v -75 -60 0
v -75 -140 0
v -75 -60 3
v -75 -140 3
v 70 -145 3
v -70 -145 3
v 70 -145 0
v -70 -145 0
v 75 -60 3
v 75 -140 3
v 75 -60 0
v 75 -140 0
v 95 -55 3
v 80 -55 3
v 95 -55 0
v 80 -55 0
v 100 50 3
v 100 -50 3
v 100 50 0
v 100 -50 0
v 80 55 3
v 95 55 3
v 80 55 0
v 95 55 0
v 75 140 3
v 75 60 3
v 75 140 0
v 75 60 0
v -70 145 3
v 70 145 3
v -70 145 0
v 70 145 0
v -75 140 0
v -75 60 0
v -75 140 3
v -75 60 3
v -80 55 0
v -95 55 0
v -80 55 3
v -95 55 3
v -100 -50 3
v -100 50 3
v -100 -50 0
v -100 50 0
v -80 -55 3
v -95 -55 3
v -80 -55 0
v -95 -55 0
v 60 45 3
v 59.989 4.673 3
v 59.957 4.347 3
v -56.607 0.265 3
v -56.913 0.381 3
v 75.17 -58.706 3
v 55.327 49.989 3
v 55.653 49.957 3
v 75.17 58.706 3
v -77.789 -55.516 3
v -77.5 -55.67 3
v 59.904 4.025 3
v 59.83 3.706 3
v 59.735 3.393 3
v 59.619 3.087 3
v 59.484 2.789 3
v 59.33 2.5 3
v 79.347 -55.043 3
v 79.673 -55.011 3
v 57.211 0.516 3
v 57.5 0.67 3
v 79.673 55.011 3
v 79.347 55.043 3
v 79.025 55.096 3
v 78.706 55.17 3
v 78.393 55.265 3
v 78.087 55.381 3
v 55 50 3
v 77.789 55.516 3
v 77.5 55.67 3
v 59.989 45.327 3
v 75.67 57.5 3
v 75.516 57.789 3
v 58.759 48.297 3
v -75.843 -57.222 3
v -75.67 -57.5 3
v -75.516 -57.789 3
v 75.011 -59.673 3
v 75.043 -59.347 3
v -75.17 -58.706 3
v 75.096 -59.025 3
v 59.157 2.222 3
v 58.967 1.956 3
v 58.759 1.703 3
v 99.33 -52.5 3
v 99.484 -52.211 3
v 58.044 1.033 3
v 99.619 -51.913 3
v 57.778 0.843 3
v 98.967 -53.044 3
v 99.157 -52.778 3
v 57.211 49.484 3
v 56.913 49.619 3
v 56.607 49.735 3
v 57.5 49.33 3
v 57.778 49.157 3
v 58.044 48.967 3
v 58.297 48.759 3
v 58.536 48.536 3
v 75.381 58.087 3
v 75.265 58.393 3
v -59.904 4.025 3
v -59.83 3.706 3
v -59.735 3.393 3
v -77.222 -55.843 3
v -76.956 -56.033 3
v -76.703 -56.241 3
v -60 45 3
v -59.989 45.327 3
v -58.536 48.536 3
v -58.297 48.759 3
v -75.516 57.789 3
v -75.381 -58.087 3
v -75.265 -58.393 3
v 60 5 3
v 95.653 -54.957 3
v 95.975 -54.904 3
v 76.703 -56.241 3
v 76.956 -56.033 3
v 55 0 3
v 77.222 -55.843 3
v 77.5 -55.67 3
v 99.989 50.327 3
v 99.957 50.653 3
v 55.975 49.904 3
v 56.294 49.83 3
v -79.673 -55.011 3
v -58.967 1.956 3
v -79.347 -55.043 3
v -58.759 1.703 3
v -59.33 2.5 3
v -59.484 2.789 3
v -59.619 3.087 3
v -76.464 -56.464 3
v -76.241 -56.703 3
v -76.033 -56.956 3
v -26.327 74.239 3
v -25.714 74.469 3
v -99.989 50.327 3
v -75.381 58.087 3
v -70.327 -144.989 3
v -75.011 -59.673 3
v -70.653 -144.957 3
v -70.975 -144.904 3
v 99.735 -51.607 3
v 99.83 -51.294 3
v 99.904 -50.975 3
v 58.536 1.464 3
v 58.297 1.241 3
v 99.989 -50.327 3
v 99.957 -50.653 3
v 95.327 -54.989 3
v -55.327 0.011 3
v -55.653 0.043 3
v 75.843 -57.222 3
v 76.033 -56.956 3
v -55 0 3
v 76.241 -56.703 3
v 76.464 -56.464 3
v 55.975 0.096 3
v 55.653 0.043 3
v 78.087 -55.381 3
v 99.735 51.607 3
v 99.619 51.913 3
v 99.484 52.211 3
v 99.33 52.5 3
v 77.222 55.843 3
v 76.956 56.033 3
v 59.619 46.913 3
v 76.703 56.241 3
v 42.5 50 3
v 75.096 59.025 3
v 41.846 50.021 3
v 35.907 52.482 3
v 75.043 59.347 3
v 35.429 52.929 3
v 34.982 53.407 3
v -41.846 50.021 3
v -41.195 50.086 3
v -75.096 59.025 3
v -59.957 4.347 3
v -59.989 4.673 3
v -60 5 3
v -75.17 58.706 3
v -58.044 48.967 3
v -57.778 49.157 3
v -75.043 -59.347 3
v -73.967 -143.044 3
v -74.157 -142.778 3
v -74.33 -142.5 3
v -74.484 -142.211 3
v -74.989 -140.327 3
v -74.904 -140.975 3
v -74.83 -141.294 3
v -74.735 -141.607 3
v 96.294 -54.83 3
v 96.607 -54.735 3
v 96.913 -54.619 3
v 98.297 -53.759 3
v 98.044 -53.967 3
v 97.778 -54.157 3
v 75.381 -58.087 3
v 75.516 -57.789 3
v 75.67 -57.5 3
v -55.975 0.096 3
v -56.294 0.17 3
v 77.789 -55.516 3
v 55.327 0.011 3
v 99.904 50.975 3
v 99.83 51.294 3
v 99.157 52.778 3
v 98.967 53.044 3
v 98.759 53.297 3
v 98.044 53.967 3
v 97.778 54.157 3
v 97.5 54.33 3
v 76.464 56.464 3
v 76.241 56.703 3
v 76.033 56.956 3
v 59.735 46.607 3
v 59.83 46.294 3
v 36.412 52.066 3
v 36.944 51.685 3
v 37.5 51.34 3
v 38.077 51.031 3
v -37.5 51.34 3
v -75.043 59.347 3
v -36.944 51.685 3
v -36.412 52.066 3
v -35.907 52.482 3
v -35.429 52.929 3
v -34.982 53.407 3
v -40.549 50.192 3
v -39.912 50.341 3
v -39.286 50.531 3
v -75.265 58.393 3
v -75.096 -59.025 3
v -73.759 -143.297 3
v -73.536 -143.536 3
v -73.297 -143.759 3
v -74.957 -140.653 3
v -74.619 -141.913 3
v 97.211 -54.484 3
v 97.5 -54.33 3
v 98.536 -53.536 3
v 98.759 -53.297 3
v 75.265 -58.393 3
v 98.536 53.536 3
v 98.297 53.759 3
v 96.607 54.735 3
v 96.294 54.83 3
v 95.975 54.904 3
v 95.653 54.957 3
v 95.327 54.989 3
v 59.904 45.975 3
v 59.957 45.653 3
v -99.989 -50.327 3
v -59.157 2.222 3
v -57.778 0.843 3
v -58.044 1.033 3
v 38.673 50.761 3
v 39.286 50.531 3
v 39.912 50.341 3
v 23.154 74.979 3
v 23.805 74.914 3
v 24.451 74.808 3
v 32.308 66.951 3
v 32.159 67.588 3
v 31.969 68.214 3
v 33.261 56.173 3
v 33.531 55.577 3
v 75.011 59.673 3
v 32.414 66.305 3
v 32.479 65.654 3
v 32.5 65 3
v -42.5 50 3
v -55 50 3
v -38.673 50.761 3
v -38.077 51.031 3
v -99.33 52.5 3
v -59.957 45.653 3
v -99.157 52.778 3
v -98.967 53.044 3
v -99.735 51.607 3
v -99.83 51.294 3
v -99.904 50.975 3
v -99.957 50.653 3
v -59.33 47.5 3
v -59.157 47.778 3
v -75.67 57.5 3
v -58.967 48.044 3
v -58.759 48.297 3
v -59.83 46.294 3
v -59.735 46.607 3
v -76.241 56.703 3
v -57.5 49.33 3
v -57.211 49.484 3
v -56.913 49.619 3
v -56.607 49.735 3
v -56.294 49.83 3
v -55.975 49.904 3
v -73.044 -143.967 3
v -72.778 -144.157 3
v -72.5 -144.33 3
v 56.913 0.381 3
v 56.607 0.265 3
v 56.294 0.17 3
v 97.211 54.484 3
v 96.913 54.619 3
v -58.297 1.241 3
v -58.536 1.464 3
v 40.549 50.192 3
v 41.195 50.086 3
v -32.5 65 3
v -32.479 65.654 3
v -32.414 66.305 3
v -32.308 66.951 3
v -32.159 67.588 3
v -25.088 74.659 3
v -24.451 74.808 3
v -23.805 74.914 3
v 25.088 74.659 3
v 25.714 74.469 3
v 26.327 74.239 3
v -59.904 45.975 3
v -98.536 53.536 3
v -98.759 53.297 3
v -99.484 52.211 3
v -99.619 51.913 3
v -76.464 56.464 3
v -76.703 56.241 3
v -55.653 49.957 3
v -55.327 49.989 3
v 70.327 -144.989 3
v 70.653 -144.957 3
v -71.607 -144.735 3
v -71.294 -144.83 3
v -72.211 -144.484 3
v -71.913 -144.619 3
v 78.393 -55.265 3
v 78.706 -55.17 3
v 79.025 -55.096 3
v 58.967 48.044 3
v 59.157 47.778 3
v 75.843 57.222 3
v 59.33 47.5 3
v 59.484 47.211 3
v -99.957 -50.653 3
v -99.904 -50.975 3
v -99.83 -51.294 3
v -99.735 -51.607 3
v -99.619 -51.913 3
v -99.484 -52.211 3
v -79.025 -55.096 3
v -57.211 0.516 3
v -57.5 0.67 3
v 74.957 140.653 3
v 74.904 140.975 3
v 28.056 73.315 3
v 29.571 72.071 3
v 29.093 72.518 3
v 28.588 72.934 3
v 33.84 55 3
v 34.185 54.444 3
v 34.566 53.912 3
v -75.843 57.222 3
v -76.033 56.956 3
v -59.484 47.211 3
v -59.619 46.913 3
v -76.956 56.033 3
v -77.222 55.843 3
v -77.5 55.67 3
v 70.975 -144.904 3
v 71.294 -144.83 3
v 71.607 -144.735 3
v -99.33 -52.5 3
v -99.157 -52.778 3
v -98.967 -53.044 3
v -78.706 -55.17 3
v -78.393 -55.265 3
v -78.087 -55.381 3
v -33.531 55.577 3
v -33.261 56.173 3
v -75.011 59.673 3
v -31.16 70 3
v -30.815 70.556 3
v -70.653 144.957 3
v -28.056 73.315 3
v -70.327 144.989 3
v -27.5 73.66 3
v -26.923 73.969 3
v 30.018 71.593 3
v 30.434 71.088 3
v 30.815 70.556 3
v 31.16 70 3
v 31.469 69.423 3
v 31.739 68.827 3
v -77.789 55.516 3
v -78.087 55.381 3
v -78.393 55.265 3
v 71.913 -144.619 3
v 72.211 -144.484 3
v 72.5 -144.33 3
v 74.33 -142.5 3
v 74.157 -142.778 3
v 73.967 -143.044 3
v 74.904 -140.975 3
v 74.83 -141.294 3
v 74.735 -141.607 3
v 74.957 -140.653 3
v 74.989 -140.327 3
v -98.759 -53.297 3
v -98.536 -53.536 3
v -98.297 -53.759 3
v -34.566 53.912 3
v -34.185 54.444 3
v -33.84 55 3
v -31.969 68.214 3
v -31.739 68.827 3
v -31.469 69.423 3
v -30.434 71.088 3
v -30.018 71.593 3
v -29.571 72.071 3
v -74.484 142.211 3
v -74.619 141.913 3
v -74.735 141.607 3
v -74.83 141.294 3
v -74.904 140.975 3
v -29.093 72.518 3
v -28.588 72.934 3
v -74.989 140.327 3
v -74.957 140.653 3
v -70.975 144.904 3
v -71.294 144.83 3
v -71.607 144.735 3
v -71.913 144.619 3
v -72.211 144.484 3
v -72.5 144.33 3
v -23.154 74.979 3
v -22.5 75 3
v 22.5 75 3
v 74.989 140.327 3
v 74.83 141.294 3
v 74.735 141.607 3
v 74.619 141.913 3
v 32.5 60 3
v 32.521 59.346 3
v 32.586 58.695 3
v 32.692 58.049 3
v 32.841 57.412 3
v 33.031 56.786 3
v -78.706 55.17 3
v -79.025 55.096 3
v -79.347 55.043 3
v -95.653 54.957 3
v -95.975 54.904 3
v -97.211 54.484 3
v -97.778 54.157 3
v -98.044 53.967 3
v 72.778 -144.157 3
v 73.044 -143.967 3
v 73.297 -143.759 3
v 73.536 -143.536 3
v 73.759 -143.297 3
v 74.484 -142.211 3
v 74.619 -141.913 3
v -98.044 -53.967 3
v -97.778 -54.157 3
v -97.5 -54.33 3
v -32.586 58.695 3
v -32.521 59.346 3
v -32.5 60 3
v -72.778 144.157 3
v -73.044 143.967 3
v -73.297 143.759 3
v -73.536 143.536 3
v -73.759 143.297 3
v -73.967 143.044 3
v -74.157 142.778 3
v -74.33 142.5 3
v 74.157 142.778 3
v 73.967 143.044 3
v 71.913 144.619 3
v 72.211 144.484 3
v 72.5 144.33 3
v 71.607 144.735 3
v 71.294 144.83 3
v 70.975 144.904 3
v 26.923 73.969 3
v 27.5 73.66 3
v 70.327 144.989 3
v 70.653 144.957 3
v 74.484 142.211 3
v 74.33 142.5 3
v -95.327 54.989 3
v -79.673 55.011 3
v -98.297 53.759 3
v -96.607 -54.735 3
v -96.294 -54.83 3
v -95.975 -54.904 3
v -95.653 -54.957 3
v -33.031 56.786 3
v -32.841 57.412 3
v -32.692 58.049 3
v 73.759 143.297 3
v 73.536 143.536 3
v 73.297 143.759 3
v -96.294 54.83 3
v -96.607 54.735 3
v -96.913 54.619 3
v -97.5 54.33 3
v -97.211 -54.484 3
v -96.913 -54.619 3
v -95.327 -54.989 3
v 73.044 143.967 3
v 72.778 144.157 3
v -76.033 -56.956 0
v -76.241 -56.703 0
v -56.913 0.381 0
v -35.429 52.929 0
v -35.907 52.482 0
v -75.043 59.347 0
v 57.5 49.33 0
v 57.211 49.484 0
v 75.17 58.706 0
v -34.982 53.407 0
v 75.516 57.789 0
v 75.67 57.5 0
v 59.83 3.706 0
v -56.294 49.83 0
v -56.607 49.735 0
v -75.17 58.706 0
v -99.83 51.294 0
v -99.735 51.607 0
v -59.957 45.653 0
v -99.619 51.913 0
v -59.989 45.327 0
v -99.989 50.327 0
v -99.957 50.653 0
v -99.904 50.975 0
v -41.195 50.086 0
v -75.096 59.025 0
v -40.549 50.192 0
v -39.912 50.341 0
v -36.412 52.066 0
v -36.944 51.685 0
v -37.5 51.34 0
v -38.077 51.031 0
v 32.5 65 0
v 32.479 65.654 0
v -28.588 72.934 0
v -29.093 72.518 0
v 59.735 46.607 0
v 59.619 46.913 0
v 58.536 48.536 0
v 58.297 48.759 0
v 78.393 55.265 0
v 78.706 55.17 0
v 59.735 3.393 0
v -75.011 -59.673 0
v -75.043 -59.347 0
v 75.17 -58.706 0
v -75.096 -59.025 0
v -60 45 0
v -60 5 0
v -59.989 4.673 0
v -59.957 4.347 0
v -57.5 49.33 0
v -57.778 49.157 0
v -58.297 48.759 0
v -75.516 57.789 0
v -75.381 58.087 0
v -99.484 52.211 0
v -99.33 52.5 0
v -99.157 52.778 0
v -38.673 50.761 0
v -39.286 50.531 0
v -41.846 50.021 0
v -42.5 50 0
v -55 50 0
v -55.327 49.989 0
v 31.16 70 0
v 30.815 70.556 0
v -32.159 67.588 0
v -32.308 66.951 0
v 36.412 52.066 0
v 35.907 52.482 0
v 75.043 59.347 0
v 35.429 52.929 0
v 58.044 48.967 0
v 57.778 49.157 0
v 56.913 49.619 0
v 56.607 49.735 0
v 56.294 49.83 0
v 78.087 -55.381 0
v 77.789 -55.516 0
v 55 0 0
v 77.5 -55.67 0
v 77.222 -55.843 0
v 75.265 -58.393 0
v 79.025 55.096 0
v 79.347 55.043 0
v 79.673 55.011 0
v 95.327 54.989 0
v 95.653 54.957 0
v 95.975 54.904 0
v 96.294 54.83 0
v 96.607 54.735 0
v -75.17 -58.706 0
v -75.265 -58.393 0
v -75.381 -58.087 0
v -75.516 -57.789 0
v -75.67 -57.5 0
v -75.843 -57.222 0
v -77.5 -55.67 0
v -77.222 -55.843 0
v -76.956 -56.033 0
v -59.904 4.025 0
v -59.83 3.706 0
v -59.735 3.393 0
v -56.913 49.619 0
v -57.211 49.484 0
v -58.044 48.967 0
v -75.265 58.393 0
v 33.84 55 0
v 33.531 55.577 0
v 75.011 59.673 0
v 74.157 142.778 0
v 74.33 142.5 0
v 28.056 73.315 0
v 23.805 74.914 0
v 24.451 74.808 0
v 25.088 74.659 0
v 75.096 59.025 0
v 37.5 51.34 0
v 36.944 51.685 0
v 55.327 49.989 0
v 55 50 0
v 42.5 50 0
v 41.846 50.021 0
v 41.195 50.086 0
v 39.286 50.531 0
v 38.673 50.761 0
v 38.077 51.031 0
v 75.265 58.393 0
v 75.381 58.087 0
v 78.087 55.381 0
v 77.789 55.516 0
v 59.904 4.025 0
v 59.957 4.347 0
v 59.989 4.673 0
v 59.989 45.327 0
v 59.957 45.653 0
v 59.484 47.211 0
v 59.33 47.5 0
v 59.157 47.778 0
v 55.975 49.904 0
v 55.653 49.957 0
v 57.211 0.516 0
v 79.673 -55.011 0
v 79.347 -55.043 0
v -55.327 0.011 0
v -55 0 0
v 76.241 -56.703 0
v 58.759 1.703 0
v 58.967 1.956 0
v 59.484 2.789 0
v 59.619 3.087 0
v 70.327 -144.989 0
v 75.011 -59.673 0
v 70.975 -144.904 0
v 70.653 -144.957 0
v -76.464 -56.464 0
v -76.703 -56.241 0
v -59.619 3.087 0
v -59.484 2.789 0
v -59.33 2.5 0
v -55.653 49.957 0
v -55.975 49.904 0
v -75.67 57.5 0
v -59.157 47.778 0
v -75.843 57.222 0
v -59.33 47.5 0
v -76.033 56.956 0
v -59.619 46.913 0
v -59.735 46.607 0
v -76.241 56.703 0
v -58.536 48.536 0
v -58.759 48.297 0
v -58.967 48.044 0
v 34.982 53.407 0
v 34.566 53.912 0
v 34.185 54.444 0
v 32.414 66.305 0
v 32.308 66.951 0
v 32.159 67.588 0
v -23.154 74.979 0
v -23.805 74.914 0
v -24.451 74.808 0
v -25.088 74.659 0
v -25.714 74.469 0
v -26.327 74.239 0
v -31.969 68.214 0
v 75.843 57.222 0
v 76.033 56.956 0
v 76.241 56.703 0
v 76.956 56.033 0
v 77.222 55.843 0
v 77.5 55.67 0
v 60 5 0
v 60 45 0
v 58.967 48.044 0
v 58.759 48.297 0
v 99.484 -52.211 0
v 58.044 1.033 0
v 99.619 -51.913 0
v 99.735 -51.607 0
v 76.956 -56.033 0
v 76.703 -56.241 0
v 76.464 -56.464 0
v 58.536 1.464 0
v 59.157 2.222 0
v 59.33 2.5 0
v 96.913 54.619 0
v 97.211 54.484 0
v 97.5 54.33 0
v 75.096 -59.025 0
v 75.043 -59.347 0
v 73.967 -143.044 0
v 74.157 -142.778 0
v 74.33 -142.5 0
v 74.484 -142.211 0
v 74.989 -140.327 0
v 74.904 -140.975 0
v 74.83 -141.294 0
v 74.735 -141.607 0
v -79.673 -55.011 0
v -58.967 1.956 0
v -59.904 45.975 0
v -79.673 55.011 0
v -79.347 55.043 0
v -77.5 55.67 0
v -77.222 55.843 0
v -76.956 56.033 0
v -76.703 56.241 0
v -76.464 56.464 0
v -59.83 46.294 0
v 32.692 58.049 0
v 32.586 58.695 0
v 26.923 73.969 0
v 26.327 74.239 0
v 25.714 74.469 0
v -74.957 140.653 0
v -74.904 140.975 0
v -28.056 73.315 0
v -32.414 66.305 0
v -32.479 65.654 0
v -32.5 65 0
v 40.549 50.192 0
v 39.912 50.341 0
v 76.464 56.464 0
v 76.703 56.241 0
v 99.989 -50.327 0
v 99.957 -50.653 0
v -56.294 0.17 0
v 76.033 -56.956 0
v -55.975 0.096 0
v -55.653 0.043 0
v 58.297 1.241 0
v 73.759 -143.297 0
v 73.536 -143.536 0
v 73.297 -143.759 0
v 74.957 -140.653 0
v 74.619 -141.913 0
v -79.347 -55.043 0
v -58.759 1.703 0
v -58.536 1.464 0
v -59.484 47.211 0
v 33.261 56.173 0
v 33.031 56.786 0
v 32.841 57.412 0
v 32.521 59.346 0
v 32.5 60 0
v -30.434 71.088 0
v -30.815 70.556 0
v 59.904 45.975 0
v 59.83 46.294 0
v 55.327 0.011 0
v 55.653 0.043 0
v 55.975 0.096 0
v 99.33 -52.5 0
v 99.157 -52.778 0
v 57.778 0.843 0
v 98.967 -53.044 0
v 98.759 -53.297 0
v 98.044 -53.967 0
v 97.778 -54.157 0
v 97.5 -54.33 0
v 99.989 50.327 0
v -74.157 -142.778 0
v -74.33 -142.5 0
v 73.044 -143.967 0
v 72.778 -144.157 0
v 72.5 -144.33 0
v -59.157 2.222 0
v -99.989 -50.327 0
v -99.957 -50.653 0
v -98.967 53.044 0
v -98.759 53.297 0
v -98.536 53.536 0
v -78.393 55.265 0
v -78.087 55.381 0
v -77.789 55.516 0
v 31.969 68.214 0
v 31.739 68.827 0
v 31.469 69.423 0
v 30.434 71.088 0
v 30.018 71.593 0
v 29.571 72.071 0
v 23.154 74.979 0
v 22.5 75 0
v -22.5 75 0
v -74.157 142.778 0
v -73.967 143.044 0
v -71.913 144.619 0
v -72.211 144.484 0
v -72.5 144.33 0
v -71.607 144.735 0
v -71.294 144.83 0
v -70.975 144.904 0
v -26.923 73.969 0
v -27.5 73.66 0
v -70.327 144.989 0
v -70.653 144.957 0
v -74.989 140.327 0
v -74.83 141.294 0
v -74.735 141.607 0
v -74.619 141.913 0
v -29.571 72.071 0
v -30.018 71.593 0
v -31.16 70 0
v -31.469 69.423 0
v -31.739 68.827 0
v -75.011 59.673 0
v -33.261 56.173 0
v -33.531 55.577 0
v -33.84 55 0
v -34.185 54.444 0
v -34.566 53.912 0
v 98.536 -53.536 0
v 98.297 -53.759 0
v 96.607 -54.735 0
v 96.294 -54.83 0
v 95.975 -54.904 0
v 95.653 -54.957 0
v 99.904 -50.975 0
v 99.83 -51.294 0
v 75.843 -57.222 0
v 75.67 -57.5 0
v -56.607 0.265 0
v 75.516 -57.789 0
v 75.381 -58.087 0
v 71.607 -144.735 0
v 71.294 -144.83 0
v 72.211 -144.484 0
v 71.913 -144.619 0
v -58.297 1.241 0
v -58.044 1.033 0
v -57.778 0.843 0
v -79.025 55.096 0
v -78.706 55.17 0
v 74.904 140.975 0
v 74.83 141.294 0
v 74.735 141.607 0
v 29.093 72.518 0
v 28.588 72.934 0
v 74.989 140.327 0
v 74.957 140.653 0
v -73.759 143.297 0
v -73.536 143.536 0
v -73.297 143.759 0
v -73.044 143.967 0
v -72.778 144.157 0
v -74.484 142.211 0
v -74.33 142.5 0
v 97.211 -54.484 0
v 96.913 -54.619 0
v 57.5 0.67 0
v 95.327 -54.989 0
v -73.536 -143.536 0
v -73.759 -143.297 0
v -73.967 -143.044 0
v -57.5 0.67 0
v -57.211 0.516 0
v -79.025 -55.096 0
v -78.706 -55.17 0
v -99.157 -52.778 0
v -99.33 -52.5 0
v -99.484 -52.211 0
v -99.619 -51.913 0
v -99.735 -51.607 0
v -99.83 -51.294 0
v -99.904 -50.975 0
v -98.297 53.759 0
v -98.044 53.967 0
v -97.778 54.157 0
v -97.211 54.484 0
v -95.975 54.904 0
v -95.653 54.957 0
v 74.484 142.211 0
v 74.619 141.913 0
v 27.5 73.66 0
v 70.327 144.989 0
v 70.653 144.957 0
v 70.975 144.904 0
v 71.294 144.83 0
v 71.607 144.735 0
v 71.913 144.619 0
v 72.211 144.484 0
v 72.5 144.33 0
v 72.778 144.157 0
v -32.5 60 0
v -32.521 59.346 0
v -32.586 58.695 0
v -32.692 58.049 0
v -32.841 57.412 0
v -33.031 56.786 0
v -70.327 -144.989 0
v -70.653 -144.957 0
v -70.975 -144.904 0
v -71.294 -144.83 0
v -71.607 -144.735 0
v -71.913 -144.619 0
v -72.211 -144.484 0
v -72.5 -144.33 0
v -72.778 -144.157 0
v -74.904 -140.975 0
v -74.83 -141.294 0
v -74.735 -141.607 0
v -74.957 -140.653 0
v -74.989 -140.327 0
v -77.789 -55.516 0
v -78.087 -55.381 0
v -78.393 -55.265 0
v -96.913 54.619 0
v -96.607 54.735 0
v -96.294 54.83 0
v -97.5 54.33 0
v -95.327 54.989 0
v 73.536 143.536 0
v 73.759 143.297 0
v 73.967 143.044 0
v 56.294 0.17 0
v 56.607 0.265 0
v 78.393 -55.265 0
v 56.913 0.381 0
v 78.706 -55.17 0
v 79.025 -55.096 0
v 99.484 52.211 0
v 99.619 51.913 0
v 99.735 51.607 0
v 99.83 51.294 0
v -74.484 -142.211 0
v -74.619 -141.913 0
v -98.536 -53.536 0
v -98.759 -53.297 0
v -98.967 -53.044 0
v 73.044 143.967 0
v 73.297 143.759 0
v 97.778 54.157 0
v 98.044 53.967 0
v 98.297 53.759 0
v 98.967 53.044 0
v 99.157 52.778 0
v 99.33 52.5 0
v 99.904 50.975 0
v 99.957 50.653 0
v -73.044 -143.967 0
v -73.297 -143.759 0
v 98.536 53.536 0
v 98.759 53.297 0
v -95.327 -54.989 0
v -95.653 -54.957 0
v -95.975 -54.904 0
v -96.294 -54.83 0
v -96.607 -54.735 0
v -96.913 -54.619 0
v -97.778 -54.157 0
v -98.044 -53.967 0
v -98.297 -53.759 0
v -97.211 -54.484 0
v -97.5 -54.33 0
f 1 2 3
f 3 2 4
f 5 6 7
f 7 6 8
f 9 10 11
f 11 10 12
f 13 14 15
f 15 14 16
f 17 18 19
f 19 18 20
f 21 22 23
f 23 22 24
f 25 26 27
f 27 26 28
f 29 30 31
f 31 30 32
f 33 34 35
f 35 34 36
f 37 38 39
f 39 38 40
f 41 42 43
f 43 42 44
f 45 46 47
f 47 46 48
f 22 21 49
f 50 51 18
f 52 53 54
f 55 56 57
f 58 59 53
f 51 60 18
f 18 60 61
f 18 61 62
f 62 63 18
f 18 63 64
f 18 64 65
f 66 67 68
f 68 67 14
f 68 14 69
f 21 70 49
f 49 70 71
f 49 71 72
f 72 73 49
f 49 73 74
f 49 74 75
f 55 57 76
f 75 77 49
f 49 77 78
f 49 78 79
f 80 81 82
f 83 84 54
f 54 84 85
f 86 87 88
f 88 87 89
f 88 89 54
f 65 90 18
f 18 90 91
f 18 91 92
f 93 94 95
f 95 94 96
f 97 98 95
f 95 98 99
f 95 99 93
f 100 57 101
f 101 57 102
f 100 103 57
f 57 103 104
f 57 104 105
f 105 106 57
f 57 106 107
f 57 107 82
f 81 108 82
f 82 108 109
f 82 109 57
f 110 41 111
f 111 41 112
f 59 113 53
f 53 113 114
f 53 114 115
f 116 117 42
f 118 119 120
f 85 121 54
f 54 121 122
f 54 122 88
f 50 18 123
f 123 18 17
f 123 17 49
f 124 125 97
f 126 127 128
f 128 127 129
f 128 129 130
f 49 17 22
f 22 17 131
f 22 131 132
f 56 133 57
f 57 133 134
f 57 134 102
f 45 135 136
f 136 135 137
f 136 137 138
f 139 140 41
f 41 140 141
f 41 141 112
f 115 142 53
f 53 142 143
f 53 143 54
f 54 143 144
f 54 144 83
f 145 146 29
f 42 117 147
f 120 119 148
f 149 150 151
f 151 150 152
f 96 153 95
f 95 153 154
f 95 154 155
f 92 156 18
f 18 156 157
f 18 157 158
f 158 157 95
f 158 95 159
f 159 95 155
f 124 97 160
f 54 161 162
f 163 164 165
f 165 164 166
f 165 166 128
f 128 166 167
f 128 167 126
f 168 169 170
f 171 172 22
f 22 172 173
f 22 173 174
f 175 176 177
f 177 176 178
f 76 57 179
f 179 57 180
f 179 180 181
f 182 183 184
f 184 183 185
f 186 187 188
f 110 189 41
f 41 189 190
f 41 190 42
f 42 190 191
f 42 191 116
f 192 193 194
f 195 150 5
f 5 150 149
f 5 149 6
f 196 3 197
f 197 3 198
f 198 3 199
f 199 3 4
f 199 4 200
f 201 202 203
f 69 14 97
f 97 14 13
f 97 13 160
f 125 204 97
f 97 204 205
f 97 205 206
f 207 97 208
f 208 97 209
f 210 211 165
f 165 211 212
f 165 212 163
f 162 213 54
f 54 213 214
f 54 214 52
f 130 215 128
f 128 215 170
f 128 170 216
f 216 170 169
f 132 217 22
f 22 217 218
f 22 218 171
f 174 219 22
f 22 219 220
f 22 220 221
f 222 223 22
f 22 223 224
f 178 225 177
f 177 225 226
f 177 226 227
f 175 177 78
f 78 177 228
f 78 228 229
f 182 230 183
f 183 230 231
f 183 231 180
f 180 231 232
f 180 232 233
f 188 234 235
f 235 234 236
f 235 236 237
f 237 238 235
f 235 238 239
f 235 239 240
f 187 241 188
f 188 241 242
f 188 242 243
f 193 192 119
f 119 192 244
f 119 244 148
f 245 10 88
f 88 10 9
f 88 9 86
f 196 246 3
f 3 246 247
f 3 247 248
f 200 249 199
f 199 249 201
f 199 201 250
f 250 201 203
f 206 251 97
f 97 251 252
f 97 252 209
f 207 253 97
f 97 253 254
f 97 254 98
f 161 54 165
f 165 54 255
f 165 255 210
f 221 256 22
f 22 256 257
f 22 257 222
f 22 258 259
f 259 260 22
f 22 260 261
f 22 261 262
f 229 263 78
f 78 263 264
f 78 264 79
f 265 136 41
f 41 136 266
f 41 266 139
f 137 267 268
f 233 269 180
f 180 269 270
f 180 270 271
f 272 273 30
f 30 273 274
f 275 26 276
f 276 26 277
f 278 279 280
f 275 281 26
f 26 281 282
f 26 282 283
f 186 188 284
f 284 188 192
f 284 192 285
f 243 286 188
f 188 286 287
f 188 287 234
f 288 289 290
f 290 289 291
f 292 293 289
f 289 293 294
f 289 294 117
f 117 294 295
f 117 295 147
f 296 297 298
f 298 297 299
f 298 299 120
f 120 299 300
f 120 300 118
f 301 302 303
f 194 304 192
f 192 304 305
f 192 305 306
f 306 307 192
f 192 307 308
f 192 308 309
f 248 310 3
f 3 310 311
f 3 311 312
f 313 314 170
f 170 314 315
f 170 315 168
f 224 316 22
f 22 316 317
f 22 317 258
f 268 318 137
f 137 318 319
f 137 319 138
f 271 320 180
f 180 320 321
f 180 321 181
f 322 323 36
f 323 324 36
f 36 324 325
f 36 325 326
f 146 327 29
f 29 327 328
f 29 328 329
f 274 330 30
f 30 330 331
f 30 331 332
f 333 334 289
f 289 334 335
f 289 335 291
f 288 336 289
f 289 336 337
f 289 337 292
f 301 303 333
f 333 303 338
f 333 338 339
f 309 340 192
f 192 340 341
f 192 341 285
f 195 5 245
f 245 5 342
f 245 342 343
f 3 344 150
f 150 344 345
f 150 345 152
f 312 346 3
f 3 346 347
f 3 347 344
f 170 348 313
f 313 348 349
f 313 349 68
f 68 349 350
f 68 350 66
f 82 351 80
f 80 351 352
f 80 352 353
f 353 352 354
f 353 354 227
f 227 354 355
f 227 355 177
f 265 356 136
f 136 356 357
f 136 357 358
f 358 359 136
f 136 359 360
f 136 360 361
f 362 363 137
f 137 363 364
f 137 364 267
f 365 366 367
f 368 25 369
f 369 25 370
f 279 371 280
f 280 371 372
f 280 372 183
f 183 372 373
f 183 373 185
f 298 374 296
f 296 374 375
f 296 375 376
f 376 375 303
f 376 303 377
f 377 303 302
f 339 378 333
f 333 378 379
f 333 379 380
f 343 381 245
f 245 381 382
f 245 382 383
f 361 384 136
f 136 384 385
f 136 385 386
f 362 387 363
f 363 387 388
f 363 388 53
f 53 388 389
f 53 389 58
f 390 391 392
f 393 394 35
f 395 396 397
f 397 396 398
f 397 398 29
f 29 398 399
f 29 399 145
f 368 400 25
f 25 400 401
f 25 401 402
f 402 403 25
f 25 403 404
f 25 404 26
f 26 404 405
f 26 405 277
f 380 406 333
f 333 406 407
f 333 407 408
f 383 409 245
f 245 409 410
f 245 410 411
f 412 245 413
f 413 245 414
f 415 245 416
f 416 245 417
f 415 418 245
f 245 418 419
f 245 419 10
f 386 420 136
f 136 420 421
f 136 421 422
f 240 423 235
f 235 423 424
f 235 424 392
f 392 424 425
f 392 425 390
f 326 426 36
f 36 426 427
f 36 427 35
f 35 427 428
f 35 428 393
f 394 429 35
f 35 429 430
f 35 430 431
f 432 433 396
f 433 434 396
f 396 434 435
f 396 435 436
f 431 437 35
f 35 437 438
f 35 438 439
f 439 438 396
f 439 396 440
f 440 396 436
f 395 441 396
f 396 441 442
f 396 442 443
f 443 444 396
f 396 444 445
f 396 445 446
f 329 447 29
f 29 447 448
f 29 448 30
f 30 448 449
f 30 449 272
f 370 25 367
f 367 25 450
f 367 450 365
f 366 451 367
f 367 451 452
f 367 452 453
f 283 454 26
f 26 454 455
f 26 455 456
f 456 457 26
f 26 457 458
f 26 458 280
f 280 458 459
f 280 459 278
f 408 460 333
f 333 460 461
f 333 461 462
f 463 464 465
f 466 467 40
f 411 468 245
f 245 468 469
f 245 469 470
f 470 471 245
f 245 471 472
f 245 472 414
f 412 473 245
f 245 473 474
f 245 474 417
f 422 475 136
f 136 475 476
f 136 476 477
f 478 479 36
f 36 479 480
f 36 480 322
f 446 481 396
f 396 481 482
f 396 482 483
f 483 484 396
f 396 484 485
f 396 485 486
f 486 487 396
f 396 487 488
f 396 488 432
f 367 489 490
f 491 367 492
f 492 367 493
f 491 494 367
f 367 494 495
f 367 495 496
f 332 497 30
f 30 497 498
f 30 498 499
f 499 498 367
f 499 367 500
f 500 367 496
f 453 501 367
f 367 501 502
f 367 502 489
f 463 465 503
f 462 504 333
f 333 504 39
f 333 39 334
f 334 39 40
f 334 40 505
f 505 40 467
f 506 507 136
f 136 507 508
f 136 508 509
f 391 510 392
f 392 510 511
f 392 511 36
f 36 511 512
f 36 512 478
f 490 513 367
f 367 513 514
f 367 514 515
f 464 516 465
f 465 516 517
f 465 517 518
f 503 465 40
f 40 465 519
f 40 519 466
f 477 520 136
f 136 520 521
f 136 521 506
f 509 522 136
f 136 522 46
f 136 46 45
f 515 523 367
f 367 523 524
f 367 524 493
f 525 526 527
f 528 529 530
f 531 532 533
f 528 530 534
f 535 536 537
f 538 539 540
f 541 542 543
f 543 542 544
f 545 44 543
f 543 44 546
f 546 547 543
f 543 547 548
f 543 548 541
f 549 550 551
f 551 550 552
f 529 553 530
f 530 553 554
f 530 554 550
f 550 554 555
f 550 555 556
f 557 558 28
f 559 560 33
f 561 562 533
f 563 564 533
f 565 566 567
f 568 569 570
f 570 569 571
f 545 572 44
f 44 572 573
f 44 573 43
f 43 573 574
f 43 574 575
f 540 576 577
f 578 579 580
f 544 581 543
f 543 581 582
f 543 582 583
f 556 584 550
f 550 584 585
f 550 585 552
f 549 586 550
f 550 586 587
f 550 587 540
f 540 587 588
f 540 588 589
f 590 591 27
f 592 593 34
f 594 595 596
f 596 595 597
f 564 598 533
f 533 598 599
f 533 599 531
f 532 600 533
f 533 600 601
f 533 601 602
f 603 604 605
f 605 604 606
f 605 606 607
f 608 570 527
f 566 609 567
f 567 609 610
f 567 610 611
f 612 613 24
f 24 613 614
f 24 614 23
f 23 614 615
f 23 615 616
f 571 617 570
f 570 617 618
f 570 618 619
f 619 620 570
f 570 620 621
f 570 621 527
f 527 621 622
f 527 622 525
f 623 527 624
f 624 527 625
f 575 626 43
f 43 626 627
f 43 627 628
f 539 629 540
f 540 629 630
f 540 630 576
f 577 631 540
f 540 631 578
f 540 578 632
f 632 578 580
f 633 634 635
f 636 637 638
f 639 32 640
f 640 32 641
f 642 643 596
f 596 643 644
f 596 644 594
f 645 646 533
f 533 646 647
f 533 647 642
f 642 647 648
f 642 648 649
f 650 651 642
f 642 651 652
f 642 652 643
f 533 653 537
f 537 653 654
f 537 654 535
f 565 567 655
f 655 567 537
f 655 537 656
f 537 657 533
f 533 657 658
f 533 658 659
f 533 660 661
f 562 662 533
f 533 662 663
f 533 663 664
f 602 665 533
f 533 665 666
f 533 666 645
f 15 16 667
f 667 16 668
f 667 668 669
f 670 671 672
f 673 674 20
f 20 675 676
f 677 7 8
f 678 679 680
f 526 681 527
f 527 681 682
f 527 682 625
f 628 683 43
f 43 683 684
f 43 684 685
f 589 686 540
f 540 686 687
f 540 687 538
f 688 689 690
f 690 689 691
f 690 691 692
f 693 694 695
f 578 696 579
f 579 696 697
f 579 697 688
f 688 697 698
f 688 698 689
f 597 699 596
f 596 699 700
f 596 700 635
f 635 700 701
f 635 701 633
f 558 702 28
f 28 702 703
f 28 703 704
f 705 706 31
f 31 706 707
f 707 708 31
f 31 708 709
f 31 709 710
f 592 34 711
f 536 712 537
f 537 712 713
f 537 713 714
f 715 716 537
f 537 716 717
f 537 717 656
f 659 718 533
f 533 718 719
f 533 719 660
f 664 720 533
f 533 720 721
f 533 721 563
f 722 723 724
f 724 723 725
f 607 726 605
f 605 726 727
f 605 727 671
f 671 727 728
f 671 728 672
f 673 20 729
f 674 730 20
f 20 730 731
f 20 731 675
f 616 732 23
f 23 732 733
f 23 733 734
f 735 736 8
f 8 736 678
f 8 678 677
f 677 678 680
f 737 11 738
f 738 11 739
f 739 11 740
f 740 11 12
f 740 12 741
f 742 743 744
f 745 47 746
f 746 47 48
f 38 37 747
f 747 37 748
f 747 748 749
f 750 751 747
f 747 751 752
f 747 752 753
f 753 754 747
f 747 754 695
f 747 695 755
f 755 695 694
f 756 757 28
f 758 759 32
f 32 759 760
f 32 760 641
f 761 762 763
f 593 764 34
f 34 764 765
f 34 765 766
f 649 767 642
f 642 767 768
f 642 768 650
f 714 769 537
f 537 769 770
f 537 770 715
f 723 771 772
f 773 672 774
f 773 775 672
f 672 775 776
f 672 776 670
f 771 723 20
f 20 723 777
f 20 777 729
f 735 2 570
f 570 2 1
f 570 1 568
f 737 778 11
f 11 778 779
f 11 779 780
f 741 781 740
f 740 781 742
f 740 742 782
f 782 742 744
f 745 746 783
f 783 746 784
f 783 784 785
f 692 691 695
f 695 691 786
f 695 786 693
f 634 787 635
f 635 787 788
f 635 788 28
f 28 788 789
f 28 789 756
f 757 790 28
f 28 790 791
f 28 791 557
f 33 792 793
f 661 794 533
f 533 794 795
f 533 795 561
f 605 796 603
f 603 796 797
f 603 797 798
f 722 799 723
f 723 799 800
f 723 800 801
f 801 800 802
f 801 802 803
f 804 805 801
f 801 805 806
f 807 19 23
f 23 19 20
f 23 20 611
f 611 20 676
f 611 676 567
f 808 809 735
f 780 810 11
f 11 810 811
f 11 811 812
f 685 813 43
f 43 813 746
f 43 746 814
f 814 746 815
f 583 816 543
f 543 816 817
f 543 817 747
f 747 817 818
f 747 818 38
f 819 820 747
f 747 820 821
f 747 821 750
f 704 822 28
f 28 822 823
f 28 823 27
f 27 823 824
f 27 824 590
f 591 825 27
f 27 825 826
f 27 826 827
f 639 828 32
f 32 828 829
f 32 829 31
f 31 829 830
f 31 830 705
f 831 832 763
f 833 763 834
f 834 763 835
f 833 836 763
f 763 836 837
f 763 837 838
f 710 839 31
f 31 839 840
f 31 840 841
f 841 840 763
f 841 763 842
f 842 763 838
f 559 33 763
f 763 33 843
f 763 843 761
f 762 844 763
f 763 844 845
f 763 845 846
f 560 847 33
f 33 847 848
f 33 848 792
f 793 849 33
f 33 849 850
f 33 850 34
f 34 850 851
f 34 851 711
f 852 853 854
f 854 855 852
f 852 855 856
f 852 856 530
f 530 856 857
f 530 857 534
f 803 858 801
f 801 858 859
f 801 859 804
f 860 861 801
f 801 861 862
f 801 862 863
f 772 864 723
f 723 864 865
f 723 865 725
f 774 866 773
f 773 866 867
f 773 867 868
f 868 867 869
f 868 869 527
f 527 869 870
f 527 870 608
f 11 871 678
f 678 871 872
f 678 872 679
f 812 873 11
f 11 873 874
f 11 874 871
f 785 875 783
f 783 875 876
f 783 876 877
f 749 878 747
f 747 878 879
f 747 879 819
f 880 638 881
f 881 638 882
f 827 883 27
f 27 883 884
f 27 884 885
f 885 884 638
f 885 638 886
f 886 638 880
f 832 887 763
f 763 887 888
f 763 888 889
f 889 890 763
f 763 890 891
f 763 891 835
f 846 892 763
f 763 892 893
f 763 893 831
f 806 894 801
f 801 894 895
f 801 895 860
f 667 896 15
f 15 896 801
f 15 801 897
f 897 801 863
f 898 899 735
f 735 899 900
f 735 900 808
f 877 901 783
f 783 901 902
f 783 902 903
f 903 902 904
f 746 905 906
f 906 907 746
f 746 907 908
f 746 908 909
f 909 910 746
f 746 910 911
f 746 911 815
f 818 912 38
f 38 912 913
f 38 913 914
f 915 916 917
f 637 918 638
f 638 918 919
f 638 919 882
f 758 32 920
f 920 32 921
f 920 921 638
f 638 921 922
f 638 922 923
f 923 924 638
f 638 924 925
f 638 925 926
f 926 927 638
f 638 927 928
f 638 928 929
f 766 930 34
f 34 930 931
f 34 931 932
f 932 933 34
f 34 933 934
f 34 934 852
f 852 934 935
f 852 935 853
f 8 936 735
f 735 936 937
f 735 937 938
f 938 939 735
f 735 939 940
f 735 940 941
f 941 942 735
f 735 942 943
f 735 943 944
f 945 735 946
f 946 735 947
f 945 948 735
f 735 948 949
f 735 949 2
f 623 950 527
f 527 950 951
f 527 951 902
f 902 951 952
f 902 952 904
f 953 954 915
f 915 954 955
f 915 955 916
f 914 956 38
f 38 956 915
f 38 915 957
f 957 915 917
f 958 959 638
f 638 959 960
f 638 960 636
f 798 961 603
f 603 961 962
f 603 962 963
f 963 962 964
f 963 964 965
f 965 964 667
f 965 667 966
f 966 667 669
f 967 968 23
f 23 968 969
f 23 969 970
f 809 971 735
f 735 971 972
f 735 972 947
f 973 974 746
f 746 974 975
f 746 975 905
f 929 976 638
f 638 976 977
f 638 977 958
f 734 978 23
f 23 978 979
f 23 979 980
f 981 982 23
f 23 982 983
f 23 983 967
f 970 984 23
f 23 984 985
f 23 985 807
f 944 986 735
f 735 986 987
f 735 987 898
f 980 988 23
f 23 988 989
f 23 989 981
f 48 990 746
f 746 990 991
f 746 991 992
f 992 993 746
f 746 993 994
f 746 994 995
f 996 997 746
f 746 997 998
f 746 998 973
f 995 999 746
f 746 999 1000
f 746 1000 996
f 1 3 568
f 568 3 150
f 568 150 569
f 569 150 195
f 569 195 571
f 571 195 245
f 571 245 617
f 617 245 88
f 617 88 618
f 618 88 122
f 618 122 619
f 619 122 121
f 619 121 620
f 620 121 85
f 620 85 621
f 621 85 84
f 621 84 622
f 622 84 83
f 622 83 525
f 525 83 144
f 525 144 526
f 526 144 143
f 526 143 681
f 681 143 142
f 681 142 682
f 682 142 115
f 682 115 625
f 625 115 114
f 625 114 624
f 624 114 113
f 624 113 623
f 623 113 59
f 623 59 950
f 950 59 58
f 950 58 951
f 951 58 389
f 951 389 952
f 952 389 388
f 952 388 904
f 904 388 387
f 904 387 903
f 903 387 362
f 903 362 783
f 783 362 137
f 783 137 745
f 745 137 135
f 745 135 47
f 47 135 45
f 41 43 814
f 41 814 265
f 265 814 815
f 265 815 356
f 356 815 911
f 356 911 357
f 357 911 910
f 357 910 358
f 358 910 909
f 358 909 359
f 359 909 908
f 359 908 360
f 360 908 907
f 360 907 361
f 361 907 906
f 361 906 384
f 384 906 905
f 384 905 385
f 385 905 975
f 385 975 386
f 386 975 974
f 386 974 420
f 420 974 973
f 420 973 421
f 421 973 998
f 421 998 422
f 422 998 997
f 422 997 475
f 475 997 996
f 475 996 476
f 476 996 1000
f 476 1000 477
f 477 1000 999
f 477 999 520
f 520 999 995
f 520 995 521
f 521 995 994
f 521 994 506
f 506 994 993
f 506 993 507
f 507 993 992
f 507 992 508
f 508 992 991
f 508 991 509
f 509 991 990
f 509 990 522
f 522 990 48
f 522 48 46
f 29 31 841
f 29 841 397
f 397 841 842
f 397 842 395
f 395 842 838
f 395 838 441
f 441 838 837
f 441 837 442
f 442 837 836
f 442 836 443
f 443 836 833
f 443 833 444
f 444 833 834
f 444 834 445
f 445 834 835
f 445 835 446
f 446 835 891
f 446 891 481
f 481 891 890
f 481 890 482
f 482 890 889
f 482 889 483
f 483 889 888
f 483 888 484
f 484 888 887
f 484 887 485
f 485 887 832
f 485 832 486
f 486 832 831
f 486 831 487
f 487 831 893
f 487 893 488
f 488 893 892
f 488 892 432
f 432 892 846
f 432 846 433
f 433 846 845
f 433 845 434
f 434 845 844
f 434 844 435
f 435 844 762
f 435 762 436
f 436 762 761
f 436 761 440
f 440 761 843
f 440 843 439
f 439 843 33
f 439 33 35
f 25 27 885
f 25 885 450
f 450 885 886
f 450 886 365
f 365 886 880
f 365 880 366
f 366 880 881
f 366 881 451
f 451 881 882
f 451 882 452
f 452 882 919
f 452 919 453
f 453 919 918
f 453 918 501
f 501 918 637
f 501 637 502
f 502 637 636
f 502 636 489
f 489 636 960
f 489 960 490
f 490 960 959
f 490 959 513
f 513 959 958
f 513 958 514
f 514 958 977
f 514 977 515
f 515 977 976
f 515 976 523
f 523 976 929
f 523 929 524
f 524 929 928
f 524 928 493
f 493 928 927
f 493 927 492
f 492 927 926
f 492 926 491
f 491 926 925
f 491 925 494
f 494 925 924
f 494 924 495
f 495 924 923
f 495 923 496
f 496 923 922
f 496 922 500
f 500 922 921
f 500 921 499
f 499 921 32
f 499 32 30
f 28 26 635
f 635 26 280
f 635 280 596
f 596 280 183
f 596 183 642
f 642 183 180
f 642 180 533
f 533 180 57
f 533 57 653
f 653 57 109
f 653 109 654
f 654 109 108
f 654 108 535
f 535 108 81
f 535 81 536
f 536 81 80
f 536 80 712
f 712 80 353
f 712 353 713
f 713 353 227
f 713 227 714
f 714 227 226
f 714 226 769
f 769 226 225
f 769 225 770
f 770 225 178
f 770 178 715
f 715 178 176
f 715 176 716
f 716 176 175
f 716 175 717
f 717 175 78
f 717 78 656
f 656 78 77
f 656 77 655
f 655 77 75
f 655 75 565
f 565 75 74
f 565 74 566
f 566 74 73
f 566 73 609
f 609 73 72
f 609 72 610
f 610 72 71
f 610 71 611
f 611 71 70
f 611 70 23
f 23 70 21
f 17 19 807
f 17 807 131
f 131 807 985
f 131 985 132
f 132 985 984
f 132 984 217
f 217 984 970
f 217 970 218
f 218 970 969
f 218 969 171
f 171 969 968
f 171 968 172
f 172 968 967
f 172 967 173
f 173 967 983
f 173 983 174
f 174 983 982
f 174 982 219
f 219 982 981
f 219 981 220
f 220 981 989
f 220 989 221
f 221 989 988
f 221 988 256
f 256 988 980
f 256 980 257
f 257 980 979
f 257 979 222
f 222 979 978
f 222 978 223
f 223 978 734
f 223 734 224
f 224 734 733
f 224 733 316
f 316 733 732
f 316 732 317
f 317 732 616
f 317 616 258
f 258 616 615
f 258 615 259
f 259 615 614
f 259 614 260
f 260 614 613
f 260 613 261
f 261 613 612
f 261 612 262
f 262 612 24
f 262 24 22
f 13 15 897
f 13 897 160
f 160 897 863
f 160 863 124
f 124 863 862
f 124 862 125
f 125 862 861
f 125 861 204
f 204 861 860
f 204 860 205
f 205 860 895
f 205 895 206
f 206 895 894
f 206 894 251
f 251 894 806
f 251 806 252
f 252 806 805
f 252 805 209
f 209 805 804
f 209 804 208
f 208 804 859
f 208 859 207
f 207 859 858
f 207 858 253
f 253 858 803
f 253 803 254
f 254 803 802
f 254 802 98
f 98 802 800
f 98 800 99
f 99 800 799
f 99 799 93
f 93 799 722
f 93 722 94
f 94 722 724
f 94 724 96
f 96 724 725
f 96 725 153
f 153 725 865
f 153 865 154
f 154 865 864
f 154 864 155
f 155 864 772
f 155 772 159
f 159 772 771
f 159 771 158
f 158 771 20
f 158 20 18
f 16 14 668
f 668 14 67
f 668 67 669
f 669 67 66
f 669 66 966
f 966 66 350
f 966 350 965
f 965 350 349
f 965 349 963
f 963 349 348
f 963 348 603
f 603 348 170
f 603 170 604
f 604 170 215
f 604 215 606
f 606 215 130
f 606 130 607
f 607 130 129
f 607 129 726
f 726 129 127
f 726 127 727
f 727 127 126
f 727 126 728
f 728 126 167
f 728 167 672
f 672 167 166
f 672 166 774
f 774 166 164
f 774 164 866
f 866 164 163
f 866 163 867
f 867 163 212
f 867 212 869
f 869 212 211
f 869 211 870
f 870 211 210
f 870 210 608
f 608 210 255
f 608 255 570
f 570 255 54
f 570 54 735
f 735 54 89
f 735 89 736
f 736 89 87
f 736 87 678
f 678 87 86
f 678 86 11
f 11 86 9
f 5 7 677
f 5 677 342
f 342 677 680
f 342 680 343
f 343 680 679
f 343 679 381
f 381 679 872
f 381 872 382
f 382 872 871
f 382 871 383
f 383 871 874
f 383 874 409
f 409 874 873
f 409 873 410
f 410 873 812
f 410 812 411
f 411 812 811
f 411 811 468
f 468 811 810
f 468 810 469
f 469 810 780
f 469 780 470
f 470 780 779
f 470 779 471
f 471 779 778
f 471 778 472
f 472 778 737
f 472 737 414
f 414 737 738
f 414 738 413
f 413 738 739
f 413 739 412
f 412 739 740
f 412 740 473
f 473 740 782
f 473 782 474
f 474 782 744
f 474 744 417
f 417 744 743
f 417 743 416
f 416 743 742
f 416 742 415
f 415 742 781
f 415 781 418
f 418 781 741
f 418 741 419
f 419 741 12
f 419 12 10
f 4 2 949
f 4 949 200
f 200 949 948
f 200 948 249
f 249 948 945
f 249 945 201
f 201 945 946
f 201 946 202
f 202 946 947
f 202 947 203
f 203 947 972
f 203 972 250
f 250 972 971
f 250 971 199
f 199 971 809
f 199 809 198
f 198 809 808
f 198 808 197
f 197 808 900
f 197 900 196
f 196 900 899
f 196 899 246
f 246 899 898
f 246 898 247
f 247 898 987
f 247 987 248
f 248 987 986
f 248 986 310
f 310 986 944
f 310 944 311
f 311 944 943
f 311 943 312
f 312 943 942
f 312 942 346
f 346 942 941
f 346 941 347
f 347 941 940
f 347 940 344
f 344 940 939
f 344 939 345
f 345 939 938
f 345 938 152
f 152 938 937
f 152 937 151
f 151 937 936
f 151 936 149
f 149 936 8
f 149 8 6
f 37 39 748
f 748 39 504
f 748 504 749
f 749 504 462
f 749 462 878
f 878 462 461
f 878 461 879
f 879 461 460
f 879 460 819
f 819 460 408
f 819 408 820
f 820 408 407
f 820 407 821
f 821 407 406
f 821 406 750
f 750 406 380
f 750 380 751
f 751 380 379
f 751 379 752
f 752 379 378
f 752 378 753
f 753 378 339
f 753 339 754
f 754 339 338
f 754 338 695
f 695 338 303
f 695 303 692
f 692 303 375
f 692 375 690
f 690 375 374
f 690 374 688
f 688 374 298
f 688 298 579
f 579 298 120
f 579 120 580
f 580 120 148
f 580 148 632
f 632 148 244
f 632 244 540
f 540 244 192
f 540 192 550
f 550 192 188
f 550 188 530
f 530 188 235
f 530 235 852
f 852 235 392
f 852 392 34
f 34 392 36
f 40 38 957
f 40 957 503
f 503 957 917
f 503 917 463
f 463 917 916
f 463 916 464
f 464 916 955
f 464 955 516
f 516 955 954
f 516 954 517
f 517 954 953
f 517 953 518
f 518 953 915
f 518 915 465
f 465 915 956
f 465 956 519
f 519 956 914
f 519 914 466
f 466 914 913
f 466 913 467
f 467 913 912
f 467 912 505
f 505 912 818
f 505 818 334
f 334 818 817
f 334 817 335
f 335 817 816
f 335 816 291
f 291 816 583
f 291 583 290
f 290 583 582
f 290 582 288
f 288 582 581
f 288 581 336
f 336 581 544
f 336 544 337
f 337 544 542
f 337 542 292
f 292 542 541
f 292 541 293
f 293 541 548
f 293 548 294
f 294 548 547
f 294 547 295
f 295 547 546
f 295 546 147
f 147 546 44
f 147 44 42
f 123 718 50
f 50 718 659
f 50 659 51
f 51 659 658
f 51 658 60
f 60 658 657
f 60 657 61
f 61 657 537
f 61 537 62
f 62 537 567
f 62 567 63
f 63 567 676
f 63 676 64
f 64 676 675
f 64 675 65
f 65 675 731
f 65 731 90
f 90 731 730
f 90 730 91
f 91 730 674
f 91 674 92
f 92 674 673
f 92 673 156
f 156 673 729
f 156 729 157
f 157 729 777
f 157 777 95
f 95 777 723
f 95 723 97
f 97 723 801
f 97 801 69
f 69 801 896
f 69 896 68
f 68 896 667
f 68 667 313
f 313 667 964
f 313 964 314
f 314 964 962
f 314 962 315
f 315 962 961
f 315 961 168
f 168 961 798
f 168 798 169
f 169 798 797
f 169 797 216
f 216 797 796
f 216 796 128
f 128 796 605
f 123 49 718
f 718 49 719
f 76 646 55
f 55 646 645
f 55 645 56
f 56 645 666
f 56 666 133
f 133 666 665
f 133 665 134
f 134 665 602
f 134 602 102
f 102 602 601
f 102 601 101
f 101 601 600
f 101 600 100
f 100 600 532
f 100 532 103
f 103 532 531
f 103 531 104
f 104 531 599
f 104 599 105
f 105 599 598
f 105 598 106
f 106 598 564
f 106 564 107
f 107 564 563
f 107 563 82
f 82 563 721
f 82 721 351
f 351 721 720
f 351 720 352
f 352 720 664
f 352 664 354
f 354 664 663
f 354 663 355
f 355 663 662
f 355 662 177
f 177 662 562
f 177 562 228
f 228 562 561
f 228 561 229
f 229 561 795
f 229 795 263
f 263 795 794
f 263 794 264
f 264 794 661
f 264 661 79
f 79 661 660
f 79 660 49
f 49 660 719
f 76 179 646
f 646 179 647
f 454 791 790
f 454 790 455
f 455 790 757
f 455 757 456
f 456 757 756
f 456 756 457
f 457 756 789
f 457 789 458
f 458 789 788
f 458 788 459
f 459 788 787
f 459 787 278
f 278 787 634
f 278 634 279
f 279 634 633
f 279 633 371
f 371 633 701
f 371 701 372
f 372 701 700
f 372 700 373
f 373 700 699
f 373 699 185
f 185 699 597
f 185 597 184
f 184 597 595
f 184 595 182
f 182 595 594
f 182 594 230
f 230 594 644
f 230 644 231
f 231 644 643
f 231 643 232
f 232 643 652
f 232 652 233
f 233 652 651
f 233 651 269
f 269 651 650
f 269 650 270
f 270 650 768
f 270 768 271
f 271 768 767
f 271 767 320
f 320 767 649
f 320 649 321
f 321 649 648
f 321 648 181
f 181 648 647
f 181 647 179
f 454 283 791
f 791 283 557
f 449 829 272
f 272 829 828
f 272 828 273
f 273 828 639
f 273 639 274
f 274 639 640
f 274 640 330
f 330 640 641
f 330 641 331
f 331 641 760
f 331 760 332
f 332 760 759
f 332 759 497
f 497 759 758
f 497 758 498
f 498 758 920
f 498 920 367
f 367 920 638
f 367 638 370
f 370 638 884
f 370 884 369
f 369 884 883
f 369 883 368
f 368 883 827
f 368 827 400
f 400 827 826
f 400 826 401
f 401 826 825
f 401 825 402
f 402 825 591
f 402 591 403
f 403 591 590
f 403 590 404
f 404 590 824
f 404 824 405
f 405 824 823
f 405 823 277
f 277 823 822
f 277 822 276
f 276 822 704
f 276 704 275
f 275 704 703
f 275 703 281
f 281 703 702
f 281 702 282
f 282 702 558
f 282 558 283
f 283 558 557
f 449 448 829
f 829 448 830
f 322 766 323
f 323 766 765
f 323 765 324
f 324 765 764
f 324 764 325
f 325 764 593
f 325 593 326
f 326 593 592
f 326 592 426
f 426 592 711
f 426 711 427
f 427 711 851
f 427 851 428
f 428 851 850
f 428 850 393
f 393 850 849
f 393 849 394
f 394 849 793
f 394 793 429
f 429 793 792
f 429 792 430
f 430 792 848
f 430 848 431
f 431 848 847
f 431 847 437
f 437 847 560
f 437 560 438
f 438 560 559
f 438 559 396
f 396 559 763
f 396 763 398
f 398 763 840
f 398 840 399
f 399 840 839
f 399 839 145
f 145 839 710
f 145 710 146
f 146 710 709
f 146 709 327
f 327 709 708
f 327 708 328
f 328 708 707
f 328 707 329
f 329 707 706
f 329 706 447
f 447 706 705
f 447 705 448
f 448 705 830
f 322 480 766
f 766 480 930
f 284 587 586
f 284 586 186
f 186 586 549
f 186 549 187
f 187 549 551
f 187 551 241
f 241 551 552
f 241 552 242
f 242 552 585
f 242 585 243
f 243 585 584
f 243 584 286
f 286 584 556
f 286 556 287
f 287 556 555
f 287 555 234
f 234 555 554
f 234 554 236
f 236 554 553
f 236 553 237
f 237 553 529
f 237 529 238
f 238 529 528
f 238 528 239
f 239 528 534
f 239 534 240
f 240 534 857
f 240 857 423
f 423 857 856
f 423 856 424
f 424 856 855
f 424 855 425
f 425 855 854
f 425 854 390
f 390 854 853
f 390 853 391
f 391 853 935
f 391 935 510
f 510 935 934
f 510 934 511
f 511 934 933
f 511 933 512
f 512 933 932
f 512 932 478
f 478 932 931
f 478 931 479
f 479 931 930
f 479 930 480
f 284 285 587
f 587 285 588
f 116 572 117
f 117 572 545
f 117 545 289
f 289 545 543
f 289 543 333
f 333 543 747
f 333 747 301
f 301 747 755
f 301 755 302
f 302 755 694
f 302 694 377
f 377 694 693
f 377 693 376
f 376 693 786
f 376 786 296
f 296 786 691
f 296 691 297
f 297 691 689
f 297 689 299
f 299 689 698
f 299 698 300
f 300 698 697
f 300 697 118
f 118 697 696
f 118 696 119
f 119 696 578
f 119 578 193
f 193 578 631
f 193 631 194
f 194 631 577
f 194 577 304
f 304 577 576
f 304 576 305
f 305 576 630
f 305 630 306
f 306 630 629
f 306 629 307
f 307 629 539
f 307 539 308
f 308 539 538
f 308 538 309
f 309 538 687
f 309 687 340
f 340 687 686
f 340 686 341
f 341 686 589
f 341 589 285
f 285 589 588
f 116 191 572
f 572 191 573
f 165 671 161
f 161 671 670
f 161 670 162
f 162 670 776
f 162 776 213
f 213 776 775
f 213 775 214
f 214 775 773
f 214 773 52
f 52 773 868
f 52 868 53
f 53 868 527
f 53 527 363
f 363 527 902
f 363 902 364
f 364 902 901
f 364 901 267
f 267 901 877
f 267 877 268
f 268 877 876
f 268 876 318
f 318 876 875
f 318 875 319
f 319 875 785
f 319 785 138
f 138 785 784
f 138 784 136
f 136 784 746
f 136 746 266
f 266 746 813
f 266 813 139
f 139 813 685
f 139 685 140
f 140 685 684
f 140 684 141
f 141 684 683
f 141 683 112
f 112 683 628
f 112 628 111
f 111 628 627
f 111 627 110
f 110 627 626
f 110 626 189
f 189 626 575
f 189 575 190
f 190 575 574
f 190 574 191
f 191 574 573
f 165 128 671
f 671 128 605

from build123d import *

# Parameters (mm, degrees)
BOSS_EXTRUDE1_DEPTH = 3
FILLET1_R           = 5
CUT_EXTRUDE8_DEPTH  = 177.164695669


with BuildPart() as part:
    # Sketch1 → Boss-Extrude1 (new body)
    with BuildSketch(Plane.XY):
        Polygon((-75, -145), (75, -145), (75, -55), (100, -55), (100, 55), (75, 55), (75, 145), (-75, 145), (-75, 55), (-100, 55), (-100, -55), (-75, -55), align=None)
    extrude(amount=BOSS_EXTRUDE1_DEPTH)

    # Fillet1
    fillet1_edges = [part.edges().sort_by_distance(p)[0] for p in [
        (-75, -55, 1.5),
        (-100, -55, 1.5),
        (-100, 55, 1.5),
        (-75, 55, 1.5),
        (-75, 145, 1.5),
        (75, 145, 1.5),
        (75, 55, 1.5),
        (100, 55, 1.5),
        (100, -55, 1.5),
        (75, -55, 1.5),
        (75, -145, 1.5),
        (-75, -145, 1.5),
    ]]
    fillet(fillet1_edges, radius=FILLET1_R)

    # Sketch13 → Cut-Extrude8 (cut, through all)
    with BuildSketch(Plane(origin=(0, 0, 0), x_dir=(-1, 0, 0), z_dir=(0, 0, -1))):
        with BuildLine():
            Line((-55, 50), (-42.5, 50))
            ThreePointArc((-42.5, 50), (-35.428932188, 52.928932188), (-32.5, 60))
            Line((-32.5, 60), (-32.5, 65))
            ThreePointArc((-32.5, 65), (-29.571067812, 72.071067812), (-22.5, 75))
            Line((-22.5, 75), (22.5, 75))
            ThreePointArc((22.5, 75), (29.571067812, 72.071067812), (32.5, 65))
            Line((32.5, 65), (32.5, 60))
            ThreePointArc((32.5, 60), (35.428932188, 52.928932188), (42.5, 50))
            Line((42.5, 50), (55, 50))
            ThreePointArc((55, 50), (58.535533906, 48.535533906), (60, 45))
            Line((60, 45), (60, 5))
            ThreePointArc((60, 5), (58.535533906, 1.464466094), (55, 0))
            Line((55, 0), (-55, 0))
            ThreePointArc((-55, 0), (-58.535533906, 1.464466094), (-60, 5))
            Line((-60, 5), (-60, 45))
            ThreePointArc((-60, 45), (-58.535533906, 48.535533906), (-55, 50))
        make_face()
    extrude(amount=-CUT_EXTRUDE8_DEPTH, mode=Mode.SUBTRACT)


solid = part.part
